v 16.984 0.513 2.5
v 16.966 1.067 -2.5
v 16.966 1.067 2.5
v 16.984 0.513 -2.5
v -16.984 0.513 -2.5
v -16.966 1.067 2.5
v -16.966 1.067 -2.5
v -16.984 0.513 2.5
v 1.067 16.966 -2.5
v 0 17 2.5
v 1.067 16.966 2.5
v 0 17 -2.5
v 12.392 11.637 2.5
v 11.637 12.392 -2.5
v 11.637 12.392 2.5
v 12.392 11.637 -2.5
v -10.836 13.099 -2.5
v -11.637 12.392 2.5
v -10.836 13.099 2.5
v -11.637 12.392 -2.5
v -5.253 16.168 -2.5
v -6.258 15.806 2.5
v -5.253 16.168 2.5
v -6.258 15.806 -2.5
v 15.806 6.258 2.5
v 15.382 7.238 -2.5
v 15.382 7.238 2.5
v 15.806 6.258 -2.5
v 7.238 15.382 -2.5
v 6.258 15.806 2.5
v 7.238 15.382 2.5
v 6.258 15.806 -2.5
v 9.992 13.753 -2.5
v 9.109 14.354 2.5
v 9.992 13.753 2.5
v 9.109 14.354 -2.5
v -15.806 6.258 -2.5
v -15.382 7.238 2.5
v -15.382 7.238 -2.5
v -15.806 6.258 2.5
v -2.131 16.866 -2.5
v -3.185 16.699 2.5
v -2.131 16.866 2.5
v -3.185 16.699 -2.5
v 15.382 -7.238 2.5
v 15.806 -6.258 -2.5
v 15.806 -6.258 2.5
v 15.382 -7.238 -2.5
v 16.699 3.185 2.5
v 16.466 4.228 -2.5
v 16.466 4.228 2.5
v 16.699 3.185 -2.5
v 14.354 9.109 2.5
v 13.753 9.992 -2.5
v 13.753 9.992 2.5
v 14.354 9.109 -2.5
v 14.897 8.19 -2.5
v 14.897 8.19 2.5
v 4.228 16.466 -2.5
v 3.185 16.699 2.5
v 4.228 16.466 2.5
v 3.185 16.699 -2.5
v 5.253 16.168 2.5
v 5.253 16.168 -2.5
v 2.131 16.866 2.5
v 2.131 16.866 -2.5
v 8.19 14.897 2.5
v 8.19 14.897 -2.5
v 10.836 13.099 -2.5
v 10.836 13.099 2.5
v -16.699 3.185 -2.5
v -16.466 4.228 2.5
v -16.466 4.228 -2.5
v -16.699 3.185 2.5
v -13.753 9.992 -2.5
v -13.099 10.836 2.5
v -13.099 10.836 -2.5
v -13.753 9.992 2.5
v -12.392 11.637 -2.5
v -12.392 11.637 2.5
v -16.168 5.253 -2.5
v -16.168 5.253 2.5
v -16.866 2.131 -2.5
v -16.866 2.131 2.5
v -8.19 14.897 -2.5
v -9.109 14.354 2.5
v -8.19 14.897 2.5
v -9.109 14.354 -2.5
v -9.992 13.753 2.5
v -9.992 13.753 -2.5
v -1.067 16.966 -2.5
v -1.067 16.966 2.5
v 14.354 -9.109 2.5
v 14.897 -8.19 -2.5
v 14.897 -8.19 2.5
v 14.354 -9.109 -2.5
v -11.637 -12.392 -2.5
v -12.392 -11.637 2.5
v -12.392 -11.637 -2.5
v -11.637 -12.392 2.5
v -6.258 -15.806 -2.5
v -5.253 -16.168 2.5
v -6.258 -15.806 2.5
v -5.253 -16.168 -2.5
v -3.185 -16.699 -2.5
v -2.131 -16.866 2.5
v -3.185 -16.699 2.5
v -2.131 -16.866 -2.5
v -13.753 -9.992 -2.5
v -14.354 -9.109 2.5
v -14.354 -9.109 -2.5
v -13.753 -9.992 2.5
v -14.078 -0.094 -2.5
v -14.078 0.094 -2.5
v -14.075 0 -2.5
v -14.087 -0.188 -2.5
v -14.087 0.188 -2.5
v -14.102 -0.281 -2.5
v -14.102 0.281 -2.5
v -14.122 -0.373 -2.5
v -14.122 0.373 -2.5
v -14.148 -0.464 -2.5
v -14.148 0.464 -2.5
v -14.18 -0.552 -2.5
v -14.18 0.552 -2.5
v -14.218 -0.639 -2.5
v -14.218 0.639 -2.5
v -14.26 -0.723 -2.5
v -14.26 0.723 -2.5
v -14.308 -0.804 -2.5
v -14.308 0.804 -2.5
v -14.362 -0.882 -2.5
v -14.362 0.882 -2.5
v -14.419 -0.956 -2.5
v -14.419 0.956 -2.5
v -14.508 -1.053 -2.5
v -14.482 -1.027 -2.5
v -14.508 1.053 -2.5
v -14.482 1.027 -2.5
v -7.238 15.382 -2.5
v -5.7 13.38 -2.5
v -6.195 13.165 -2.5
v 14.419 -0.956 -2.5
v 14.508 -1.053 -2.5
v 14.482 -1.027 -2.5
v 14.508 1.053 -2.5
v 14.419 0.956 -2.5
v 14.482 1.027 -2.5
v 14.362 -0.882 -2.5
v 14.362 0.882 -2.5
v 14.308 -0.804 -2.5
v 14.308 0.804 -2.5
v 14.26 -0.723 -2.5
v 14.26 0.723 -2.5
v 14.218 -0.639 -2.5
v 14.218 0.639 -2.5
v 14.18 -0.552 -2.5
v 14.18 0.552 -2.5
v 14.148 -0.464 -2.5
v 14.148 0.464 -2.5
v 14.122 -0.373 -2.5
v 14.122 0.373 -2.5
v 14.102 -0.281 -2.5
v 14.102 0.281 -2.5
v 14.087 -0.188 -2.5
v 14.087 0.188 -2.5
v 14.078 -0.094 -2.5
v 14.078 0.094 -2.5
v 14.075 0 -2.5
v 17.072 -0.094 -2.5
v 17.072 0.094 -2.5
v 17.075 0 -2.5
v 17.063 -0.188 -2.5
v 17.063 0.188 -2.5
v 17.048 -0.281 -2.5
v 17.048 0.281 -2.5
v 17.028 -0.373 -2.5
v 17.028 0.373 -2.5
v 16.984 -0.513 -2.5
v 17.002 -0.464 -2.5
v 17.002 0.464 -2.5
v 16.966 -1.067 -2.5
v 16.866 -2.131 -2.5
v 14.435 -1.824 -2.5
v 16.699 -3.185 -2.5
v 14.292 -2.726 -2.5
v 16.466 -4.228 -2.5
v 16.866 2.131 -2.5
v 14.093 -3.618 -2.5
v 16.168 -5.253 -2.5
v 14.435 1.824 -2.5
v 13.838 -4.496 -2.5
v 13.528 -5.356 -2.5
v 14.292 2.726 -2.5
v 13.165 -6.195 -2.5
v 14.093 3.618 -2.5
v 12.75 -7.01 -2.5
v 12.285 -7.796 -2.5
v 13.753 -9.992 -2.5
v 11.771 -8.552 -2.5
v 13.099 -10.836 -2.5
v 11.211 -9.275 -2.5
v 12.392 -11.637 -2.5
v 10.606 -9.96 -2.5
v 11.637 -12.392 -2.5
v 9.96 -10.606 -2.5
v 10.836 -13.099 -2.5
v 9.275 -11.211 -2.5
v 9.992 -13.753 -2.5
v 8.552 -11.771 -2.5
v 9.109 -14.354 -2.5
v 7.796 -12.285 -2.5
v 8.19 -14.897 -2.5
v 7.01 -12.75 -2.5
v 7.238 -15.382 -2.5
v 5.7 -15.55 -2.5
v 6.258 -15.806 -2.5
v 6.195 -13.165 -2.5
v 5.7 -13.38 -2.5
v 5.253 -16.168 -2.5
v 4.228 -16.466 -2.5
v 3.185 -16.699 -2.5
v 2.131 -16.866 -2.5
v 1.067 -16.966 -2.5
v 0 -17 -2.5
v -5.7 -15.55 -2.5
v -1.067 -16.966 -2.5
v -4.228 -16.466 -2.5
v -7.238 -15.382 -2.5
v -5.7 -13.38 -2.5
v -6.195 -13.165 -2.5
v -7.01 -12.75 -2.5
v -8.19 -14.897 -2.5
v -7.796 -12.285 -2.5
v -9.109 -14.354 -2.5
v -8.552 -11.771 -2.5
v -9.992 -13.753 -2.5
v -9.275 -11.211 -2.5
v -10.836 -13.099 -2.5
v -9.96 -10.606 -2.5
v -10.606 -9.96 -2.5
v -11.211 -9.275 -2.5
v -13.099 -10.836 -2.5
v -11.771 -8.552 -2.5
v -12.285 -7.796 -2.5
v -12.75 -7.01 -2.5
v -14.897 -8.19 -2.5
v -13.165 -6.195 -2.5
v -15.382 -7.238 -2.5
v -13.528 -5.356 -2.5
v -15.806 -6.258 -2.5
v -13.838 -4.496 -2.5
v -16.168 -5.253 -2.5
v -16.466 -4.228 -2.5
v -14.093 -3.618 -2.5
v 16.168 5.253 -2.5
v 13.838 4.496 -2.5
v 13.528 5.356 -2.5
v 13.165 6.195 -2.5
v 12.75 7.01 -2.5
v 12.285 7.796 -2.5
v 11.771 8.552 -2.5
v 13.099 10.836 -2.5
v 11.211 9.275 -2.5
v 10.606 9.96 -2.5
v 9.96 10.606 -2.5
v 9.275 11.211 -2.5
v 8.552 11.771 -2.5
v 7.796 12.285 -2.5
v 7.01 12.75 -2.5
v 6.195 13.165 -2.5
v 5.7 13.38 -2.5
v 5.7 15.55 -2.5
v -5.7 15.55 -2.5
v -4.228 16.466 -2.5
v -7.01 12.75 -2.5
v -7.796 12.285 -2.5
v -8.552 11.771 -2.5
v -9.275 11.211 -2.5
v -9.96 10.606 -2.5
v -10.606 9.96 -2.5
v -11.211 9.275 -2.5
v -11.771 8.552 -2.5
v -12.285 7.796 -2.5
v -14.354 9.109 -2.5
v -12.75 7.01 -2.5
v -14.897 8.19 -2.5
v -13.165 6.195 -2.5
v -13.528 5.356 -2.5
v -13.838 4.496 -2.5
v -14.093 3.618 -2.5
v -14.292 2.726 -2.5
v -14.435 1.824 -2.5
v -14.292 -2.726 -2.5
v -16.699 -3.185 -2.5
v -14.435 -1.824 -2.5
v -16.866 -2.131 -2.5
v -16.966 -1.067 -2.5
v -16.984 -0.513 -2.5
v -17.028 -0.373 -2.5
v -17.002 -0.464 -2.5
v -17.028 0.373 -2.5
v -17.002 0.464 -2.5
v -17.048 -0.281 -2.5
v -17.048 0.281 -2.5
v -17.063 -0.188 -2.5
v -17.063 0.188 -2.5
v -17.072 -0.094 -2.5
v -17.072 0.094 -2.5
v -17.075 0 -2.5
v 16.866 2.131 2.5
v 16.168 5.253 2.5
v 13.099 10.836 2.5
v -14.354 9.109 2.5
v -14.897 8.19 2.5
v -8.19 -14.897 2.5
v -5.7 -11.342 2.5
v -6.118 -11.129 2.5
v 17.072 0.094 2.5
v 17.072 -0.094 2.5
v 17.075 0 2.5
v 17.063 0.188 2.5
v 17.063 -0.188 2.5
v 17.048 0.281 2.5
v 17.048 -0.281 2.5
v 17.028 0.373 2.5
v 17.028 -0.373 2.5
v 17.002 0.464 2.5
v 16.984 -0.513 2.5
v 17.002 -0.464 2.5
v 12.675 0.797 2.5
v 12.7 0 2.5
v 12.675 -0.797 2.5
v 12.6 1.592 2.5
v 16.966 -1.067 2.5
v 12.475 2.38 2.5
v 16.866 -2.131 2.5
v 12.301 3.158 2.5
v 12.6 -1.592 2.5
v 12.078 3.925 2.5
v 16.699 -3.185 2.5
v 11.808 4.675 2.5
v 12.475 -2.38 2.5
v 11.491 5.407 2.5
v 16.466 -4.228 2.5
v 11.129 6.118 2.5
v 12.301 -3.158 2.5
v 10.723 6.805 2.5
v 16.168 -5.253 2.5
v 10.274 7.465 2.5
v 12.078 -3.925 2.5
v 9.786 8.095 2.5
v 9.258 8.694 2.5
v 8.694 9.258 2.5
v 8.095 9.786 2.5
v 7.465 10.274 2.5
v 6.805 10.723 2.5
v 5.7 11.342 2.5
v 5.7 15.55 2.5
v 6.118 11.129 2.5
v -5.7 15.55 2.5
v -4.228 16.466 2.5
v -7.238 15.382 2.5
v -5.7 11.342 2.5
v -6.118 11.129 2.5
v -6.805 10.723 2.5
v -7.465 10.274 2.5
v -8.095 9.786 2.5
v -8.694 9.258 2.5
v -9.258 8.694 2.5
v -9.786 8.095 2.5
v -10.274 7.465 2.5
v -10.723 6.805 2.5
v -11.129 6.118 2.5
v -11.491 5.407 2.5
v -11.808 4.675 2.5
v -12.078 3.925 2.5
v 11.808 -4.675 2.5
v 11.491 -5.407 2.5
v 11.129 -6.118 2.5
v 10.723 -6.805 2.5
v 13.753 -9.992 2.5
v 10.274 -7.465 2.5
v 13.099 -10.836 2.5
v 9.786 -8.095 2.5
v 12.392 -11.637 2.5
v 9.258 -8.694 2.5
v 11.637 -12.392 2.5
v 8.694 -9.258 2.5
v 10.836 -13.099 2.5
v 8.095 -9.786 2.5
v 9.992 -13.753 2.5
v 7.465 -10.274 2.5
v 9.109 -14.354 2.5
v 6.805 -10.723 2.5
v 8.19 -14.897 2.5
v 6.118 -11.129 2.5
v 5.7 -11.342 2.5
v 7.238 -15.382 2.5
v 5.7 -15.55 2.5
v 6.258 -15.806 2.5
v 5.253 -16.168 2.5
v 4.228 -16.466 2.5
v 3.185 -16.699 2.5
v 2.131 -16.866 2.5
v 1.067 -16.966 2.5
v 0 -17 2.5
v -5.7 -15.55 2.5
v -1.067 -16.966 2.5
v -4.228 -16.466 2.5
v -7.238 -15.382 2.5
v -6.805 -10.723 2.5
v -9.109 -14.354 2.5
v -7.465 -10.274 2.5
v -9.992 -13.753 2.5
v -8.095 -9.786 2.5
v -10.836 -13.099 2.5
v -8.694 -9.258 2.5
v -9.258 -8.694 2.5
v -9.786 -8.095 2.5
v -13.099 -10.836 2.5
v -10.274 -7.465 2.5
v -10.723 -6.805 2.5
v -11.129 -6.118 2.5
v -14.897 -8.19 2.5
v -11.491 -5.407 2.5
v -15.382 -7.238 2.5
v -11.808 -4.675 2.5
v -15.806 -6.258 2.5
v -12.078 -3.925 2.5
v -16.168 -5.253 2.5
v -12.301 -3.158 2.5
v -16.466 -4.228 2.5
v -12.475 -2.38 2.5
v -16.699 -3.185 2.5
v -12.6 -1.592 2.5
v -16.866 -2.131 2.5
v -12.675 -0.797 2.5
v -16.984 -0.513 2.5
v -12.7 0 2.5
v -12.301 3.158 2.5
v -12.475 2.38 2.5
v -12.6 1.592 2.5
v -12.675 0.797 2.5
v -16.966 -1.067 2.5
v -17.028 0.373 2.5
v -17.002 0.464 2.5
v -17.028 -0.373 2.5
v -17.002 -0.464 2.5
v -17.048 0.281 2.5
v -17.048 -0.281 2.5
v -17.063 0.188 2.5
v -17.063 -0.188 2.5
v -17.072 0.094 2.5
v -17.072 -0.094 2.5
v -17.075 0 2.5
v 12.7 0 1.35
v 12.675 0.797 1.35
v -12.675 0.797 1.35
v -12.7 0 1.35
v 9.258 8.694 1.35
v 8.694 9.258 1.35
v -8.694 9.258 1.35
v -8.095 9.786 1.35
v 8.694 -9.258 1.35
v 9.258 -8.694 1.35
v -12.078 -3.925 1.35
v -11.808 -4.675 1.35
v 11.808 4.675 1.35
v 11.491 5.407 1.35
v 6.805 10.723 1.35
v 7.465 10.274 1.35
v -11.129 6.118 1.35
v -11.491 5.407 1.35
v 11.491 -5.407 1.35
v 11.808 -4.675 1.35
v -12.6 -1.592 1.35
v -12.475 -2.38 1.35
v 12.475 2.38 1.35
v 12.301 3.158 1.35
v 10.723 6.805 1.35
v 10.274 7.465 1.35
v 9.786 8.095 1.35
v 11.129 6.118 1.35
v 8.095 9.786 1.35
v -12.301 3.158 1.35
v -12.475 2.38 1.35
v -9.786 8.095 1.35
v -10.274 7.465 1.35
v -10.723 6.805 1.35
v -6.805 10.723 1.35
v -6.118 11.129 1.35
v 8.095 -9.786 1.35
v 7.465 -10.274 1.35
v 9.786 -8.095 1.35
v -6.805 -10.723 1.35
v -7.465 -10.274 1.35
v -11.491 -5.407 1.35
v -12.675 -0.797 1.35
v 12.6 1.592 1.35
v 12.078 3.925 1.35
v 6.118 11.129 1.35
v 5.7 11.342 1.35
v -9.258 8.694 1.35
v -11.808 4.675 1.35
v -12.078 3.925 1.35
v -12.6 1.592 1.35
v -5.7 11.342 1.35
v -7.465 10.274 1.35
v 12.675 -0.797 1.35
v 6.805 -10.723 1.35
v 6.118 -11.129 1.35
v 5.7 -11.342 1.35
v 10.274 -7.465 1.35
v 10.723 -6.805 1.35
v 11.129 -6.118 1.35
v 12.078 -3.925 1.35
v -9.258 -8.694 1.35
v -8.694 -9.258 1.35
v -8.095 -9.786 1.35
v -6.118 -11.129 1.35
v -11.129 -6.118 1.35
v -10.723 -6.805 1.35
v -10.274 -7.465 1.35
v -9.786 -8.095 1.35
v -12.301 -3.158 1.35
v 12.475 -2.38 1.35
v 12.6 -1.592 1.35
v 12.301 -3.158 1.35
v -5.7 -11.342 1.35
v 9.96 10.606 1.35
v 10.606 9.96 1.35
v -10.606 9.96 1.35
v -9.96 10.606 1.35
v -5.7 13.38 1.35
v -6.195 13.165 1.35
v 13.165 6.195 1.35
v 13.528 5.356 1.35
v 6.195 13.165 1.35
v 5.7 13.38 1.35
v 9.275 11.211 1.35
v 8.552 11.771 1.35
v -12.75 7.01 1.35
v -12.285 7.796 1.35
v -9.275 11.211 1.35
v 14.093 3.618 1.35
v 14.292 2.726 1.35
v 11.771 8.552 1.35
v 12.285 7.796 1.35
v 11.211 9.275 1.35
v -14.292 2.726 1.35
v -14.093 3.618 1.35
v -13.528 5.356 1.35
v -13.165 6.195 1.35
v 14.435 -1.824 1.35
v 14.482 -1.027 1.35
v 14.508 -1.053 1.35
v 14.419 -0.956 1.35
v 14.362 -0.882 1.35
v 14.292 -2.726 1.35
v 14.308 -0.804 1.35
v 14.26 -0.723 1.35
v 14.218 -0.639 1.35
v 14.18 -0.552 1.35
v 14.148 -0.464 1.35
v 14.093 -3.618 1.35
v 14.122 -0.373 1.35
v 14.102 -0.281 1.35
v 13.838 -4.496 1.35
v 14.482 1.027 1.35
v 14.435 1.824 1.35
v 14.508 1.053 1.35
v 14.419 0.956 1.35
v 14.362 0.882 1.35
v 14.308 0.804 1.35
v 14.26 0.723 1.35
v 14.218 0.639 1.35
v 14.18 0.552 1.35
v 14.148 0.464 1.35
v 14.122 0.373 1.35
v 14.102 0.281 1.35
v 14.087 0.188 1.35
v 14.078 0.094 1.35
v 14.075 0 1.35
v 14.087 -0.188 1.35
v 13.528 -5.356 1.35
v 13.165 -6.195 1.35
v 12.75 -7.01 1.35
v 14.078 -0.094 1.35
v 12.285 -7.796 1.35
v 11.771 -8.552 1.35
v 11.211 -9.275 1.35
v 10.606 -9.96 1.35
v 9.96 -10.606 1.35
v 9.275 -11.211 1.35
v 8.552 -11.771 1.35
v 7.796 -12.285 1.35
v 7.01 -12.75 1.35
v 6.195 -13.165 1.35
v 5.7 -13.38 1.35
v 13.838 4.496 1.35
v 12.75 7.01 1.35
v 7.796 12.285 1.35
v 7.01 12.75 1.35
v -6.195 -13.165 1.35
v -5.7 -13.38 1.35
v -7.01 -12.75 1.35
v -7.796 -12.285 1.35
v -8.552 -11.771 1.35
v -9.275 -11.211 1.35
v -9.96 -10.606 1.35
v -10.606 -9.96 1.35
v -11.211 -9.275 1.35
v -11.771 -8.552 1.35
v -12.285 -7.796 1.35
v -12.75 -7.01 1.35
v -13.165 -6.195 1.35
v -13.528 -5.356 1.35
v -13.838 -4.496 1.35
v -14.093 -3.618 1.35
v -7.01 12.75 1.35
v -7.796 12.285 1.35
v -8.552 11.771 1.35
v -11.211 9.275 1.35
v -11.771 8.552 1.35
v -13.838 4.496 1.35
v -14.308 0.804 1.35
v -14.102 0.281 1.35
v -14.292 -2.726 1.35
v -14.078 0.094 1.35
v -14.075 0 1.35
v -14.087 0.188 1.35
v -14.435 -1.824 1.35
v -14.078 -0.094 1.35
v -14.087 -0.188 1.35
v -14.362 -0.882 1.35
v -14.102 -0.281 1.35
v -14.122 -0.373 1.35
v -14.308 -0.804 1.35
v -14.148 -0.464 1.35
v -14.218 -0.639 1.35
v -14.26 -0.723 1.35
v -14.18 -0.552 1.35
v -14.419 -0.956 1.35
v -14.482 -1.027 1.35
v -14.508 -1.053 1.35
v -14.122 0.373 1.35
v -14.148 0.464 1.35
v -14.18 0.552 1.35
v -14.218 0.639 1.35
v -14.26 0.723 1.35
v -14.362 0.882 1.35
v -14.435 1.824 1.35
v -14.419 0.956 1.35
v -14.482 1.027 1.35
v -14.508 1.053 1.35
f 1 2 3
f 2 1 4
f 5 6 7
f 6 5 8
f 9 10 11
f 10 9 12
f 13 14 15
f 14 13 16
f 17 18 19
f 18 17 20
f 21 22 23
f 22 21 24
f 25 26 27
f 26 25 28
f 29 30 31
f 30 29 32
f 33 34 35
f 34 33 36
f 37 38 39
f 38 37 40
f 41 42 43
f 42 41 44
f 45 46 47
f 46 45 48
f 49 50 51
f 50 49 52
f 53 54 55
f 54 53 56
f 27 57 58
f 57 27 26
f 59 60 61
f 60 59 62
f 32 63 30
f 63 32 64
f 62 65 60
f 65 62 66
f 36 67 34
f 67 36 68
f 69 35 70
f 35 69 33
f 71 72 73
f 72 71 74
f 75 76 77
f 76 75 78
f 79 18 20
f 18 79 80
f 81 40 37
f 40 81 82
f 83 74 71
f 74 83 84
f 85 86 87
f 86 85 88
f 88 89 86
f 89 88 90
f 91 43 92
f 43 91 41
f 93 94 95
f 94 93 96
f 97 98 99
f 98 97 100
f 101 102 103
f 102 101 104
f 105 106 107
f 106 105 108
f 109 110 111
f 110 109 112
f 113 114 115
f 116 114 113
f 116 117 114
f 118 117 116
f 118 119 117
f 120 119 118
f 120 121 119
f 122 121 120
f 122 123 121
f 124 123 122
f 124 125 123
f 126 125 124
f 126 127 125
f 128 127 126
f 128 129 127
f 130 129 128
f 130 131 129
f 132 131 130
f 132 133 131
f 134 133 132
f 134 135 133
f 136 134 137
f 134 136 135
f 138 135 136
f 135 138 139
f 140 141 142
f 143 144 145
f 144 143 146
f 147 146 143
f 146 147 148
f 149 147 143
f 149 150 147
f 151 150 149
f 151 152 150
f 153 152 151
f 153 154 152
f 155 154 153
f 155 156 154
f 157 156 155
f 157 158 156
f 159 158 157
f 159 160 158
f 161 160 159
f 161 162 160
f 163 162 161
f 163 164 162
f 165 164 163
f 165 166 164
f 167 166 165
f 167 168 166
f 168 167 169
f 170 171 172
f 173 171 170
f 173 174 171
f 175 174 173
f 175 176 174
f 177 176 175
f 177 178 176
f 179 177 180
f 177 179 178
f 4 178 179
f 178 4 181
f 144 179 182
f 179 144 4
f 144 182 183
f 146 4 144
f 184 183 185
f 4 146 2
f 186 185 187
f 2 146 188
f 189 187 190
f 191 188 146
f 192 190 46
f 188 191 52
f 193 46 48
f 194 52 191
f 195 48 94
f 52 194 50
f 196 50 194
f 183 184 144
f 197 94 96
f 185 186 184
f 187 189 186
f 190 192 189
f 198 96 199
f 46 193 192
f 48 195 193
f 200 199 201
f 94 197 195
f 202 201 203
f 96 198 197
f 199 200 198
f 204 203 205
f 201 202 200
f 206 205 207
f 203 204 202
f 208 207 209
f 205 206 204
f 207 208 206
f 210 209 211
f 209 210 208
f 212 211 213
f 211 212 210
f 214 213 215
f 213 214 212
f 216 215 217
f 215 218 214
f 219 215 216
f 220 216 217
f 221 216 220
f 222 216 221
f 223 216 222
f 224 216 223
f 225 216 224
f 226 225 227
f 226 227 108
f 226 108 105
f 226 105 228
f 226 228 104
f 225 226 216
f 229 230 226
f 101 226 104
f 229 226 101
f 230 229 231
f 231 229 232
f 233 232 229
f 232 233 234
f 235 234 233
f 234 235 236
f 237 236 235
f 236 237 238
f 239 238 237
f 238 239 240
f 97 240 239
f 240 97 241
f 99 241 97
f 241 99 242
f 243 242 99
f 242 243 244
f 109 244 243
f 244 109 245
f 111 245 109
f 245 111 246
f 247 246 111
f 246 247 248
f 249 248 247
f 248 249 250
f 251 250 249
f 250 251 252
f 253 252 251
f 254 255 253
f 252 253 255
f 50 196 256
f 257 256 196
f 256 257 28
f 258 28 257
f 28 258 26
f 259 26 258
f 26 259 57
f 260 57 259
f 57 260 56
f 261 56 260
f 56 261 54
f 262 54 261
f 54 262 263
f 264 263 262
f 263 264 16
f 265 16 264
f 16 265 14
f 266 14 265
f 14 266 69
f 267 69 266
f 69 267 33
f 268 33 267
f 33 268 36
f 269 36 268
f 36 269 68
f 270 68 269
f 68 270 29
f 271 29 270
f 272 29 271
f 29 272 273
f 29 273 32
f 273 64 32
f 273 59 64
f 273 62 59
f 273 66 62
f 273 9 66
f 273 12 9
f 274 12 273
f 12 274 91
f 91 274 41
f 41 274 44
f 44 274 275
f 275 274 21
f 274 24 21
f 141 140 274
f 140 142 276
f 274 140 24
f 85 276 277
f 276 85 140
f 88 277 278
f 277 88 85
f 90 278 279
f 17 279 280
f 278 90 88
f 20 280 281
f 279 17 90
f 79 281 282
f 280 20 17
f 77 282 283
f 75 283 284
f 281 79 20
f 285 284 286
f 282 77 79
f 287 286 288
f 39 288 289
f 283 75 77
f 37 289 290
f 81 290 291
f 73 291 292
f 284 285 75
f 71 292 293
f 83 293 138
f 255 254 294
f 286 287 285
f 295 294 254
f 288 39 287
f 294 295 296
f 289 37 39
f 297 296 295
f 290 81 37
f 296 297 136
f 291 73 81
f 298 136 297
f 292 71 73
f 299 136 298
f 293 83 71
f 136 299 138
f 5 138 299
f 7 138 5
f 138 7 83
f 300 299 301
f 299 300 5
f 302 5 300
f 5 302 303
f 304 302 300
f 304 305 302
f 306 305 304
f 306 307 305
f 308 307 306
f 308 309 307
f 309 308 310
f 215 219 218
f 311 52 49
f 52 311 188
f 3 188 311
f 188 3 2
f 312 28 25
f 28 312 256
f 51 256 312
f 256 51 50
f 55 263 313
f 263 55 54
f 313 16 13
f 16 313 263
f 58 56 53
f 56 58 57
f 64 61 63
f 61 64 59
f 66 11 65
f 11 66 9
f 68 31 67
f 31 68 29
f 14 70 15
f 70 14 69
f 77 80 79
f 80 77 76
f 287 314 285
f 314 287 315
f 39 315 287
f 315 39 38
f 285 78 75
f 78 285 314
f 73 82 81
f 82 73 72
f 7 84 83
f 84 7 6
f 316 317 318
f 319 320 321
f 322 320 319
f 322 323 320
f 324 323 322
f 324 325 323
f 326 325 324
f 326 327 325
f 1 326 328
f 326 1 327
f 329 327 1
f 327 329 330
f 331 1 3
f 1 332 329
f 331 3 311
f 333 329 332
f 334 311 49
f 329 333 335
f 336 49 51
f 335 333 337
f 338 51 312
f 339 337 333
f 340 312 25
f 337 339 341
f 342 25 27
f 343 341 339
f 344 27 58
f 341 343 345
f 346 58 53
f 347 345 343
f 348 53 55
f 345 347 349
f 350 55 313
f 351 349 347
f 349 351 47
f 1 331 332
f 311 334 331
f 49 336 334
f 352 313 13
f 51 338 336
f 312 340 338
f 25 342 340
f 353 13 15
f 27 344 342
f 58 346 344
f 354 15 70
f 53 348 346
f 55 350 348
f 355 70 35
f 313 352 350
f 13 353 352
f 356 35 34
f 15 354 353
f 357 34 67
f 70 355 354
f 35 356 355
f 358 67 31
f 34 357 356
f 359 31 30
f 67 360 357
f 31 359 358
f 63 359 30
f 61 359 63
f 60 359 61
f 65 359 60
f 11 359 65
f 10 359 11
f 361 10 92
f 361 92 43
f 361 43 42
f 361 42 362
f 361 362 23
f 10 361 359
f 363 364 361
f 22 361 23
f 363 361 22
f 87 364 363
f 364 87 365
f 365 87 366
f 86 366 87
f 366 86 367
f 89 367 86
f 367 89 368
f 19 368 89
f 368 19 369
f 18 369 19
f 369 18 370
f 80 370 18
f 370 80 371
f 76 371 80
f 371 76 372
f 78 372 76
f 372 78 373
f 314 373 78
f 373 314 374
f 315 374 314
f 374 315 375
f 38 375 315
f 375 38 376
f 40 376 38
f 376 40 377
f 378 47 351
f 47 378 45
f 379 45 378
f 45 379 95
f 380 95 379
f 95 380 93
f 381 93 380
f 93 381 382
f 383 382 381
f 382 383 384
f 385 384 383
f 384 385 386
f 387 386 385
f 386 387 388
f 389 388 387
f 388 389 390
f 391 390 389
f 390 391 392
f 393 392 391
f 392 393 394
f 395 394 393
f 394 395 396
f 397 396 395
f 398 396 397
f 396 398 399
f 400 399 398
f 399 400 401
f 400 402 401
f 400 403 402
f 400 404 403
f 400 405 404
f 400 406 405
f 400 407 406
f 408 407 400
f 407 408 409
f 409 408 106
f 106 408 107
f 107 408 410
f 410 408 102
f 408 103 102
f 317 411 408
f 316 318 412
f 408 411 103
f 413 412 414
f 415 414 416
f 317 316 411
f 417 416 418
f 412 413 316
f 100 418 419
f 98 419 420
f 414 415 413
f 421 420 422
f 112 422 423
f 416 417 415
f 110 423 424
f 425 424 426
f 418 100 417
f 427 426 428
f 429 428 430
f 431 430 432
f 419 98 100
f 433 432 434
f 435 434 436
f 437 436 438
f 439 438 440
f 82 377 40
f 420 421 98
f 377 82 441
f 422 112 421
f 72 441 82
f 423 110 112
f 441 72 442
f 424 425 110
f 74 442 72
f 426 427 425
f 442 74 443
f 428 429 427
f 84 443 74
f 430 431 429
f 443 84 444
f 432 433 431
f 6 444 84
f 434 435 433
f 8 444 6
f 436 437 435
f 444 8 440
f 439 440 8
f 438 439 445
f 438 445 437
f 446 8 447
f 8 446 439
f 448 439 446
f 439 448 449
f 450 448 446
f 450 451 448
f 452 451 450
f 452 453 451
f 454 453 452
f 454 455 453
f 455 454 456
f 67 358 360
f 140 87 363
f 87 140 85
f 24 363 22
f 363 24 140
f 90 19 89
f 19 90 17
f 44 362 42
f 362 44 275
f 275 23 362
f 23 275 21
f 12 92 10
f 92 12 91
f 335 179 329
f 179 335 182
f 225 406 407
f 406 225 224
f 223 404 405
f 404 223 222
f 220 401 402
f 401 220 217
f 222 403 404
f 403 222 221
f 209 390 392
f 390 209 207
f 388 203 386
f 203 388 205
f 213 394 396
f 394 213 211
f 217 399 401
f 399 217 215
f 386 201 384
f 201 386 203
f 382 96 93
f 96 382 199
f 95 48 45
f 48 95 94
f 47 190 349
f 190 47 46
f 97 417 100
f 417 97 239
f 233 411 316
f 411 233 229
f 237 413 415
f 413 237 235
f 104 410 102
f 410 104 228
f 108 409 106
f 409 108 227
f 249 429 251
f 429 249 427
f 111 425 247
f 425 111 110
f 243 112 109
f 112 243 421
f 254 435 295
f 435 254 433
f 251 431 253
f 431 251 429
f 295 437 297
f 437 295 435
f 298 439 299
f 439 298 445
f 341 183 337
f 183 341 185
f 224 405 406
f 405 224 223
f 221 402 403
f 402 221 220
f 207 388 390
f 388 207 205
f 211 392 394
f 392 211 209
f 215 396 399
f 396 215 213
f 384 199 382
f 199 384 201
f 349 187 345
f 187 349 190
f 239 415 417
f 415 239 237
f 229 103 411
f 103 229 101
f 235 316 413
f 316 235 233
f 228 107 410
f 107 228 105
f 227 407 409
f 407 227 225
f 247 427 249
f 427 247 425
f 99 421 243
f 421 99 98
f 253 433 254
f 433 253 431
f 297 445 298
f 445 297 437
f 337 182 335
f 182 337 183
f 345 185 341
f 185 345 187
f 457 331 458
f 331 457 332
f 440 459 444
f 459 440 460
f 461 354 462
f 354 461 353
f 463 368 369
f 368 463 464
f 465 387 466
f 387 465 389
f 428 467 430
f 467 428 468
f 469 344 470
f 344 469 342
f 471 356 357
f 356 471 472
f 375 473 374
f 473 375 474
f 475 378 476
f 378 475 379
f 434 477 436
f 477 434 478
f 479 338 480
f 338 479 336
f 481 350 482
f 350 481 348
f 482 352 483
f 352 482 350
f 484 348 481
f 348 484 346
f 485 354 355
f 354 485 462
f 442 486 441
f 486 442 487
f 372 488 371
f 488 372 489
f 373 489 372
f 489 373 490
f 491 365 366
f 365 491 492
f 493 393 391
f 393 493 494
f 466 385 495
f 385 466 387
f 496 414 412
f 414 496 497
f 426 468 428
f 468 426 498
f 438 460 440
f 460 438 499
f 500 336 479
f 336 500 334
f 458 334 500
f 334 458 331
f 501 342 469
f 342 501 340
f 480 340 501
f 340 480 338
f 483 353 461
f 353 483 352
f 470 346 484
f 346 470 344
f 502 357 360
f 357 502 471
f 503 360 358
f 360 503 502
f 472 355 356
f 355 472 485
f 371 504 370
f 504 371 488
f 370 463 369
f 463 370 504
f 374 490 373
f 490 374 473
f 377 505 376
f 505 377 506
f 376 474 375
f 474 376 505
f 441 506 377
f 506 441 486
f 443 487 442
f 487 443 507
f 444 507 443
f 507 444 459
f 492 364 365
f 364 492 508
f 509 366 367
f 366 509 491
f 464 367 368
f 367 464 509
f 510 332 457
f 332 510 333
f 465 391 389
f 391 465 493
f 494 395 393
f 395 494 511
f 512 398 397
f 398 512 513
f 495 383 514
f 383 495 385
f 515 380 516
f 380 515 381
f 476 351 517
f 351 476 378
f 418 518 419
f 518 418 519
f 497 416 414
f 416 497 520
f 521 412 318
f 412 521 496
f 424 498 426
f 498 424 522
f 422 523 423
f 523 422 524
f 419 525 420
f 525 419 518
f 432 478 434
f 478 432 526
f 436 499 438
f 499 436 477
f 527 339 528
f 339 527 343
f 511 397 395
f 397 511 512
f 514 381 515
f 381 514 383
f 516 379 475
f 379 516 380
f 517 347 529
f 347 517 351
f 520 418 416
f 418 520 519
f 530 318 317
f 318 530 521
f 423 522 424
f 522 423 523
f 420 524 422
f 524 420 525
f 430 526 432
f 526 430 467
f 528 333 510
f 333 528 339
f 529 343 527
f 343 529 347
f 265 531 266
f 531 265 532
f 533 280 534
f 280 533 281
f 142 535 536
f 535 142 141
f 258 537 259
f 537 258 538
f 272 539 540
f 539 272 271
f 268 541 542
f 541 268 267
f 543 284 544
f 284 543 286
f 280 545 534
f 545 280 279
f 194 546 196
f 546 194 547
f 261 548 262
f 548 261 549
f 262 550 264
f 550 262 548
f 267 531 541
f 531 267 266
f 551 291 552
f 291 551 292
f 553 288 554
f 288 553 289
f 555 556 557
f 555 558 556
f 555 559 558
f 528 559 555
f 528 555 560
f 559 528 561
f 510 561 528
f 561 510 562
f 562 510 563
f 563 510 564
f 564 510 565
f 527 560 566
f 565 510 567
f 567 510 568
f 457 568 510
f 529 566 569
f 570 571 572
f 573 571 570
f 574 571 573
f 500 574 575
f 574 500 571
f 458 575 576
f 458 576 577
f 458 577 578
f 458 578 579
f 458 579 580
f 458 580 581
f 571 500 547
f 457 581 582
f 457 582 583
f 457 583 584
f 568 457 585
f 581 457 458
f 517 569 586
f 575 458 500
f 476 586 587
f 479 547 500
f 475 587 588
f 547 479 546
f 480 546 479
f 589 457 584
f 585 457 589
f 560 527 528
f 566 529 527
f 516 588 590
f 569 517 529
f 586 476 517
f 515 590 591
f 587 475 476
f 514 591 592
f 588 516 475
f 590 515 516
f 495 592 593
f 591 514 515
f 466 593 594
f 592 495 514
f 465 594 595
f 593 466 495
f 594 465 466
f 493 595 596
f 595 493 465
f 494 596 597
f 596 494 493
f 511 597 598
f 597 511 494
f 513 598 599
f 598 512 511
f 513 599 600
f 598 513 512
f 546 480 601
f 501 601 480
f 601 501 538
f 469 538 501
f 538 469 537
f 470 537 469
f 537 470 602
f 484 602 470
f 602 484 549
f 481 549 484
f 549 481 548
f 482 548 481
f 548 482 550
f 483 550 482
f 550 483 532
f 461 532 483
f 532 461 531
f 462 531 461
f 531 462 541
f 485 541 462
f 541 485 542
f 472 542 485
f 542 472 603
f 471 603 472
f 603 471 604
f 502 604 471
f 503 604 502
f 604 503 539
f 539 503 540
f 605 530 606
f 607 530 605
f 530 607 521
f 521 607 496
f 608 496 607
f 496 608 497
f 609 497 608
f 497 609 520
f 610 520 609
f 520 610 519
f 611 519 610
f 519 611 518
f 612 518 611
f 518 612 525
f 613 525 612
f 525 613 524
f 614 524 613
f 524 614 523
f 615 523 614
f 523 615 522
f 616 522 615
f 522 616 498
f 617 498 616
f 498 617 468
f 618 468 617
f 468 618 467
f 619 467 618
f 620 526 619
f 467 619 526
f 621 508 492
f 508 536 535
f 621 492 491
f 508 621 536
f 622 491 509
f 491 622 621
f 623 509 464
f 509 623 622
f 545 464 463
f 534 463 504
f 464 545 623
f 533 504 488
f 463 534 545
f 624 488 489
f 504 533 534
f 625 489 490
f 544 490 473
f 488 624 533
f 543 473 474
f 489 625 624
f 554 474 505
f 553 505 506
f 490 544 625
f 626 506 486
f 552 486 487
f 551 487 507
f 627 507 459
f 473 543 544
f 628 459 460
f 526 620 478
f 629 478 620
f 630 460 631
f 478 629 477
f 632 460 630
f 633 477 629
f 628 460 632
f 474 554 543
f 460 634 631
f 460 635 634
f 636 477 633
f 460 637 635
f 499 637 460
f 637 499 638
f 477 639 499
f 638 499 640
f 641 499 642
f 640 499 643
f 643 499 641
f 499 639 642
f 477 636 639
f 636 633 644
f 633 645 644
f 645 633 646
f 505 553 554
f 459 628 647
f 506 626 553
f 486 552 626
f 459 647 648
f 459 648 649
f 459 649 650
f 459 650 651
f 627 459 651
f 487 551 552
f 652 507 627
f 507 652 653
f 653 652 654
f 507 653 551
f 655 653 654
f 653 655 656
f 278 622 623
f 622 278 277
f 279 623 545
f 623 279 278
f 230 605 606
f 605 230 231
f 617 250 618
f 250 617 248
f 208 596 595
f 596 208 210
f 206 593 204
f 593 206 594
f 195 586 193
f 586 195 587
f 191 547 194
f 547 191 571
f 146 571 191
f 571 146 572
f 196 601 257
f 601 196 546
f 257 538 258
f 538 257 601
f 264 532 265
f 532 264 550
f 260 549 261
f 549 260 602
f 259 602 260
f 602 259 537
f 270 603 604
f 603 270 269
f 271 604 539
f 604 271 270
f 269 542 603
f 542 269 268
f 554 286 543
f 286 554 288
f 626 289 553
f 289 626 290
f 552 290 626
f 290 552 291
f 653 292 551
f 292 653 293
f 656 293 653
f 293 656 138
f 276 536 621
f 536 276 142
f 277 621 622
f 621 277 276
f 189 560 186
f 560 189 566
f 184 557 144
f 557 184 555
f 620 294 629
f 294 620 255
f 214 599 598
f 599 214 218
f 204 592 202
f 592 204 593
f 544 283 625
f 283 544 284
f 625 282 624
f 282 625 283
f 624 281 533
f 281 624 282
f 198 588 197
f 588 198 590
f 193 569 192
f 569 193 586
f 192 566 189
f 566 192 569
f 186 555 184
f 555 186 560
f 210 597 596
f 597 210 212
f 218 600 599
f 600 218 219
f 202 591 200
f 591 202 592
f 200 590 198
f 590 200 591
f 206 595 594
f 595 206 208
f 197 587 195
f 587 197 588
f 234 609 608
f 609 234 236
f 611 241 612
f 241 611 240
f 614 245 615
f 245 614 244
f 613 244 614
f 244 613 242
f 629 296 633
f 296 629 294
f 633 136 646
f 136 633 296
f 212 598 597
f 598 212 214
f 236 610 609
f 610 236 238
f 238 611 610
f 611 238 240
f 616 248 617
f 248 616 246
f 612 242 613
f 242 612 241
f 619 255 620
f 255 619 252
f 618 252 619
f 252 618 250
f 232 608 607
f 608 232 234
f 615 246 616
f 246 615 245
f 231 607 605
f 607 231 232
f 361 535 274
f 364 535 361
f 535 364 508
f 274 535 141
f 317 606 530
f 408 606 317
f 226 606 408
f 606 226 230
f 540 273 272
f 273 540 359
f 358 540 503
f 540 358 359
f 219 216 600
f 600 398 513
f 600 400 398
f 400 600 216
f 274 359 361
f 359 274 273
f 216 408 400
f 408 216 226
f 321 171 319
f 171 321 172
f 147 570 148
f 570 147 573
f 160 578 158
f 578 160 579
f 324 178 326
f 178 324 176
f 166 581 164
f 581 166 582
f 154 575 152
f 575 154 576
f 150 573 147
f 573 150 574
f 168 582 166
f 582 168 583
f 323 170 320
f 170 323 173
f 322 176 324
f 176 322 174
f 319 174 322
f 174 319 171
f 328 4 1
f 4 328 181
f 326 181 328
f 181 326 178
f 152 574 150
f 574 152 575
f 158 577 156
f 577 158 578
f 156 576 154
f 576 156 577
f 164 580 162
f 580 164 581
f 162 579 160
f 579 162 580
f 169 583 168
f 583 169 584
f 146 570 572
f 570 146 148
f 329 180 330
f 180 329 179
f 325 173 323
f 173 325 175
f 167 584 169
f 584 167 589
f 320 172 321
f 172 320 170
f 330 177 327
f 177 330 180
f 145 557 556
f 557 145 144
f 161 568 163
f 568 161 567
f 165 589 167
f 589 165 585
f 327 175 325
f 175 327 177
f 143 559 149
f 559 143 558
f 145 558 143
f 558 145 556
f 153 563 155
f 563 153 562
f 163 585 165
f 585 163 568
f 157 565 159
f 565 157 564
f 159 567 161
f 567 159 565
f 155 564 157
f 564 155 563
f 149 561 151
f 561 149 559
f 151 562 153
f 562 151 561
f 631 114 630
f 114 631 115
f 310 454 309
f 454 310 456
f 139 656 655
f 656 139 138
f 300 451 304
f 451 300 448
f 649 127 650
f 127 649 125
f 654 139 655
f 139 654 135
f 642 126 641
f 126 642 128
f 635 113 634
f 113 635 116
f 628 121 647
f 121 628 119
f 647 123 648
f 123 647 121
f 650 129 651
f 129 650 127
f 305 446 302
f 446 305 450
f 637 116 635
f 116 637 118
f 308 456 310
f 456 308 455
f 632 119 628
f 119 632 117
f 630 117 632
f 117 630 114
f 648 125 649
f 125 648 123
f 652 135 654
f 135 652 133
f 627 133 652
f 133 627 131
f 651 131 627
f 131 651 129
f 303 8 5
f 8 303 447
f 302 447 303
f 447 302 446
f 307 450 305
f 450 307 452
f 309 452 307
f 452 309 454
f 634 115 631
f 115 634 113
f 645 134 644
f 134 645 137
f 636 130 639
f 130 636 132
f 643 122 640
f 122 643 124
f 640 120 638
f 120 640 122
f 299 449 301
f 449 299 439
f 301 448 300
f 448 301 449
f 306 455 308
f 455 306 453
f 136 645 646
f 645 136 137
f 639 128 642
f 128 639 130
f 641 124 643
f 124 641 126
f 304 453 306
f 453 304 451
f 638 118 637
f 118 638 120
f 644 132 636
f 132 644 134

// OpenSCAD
// Garmin Edge mount
// re-draw using basic primitives

// units in millimeters
$fs = 0.1; // mm per facet in cylinder
$fa = 5; // degrees per facet in cylinder
$fn = 100;

ERR_MARGIN = 0.4; // make diameters this much bigger
DIVOT_DISTANCE = 28.15;// + ERR_MARGIN/2; // dia of garmin tab divots
GARMIN_TAB_DIA = 28.70; // diameter of tab limits
GARMIN_INNER_DIA = 25.0; // diameter of garmin inner mount
GARMIN_SEAT_DIA = 34.0; // 34mm dia of garmin mount seat surface
GARMIN_DEPTH = 3.0; // depth or height of cleat
HEIGHT = 5; // height of part
GARMIN_TAB_WIDTH = 11.0; // width of cleat tabs

module lock_key() {
    //inner cylinder bumps
    DIVOT_DIA = 3;
    translate([(DIVOT_DISTANCE+DIVOT_DIA)/2, 0 , 0])
    cylinder(h=HEIGHT, d=DIVOT_DIA, center=true);
    translate([-(DIVOT_DISTANCE+DIVOT_DIA)/2, 0, 0])
    cylinder(h=HEIGHT, d=DIVOT_DIA, center=true);
}

module tab_cutout() {
	BRIDGE_BUFFER = 2;
    cube([GARMIN_TAB_WIDTH + ERR_MARGIN, BRIDGE_BUFFER + GARMIN_TAB_DIA + ERR_MARGIN, 10], center = true);
}

module mount() {
    difference() {
        //cube([GARMIN_SEAT_DIA,GARMIN_SEAT_DIA,HEIGHT], center = true);
        cylinder(d = GARMIN_SEAT_DIA, h = HEIGHT, center = true);
        cylinder(d = GARMIN_INNER_DIA + ERR_MARGIN, h = HEIGHT*2, center = true);
        translate([0,0,-GARMIN_DEPTH/2 * 0.9 + ERR_MARGIN/2])
        cylinder(d = GARMIN_TAB_DIA + ERR_MARGIN, h = HEIGHT, center = true);
        tab_cutout();
    }
    lock_key();
}

mount();
// tab_cutout();
